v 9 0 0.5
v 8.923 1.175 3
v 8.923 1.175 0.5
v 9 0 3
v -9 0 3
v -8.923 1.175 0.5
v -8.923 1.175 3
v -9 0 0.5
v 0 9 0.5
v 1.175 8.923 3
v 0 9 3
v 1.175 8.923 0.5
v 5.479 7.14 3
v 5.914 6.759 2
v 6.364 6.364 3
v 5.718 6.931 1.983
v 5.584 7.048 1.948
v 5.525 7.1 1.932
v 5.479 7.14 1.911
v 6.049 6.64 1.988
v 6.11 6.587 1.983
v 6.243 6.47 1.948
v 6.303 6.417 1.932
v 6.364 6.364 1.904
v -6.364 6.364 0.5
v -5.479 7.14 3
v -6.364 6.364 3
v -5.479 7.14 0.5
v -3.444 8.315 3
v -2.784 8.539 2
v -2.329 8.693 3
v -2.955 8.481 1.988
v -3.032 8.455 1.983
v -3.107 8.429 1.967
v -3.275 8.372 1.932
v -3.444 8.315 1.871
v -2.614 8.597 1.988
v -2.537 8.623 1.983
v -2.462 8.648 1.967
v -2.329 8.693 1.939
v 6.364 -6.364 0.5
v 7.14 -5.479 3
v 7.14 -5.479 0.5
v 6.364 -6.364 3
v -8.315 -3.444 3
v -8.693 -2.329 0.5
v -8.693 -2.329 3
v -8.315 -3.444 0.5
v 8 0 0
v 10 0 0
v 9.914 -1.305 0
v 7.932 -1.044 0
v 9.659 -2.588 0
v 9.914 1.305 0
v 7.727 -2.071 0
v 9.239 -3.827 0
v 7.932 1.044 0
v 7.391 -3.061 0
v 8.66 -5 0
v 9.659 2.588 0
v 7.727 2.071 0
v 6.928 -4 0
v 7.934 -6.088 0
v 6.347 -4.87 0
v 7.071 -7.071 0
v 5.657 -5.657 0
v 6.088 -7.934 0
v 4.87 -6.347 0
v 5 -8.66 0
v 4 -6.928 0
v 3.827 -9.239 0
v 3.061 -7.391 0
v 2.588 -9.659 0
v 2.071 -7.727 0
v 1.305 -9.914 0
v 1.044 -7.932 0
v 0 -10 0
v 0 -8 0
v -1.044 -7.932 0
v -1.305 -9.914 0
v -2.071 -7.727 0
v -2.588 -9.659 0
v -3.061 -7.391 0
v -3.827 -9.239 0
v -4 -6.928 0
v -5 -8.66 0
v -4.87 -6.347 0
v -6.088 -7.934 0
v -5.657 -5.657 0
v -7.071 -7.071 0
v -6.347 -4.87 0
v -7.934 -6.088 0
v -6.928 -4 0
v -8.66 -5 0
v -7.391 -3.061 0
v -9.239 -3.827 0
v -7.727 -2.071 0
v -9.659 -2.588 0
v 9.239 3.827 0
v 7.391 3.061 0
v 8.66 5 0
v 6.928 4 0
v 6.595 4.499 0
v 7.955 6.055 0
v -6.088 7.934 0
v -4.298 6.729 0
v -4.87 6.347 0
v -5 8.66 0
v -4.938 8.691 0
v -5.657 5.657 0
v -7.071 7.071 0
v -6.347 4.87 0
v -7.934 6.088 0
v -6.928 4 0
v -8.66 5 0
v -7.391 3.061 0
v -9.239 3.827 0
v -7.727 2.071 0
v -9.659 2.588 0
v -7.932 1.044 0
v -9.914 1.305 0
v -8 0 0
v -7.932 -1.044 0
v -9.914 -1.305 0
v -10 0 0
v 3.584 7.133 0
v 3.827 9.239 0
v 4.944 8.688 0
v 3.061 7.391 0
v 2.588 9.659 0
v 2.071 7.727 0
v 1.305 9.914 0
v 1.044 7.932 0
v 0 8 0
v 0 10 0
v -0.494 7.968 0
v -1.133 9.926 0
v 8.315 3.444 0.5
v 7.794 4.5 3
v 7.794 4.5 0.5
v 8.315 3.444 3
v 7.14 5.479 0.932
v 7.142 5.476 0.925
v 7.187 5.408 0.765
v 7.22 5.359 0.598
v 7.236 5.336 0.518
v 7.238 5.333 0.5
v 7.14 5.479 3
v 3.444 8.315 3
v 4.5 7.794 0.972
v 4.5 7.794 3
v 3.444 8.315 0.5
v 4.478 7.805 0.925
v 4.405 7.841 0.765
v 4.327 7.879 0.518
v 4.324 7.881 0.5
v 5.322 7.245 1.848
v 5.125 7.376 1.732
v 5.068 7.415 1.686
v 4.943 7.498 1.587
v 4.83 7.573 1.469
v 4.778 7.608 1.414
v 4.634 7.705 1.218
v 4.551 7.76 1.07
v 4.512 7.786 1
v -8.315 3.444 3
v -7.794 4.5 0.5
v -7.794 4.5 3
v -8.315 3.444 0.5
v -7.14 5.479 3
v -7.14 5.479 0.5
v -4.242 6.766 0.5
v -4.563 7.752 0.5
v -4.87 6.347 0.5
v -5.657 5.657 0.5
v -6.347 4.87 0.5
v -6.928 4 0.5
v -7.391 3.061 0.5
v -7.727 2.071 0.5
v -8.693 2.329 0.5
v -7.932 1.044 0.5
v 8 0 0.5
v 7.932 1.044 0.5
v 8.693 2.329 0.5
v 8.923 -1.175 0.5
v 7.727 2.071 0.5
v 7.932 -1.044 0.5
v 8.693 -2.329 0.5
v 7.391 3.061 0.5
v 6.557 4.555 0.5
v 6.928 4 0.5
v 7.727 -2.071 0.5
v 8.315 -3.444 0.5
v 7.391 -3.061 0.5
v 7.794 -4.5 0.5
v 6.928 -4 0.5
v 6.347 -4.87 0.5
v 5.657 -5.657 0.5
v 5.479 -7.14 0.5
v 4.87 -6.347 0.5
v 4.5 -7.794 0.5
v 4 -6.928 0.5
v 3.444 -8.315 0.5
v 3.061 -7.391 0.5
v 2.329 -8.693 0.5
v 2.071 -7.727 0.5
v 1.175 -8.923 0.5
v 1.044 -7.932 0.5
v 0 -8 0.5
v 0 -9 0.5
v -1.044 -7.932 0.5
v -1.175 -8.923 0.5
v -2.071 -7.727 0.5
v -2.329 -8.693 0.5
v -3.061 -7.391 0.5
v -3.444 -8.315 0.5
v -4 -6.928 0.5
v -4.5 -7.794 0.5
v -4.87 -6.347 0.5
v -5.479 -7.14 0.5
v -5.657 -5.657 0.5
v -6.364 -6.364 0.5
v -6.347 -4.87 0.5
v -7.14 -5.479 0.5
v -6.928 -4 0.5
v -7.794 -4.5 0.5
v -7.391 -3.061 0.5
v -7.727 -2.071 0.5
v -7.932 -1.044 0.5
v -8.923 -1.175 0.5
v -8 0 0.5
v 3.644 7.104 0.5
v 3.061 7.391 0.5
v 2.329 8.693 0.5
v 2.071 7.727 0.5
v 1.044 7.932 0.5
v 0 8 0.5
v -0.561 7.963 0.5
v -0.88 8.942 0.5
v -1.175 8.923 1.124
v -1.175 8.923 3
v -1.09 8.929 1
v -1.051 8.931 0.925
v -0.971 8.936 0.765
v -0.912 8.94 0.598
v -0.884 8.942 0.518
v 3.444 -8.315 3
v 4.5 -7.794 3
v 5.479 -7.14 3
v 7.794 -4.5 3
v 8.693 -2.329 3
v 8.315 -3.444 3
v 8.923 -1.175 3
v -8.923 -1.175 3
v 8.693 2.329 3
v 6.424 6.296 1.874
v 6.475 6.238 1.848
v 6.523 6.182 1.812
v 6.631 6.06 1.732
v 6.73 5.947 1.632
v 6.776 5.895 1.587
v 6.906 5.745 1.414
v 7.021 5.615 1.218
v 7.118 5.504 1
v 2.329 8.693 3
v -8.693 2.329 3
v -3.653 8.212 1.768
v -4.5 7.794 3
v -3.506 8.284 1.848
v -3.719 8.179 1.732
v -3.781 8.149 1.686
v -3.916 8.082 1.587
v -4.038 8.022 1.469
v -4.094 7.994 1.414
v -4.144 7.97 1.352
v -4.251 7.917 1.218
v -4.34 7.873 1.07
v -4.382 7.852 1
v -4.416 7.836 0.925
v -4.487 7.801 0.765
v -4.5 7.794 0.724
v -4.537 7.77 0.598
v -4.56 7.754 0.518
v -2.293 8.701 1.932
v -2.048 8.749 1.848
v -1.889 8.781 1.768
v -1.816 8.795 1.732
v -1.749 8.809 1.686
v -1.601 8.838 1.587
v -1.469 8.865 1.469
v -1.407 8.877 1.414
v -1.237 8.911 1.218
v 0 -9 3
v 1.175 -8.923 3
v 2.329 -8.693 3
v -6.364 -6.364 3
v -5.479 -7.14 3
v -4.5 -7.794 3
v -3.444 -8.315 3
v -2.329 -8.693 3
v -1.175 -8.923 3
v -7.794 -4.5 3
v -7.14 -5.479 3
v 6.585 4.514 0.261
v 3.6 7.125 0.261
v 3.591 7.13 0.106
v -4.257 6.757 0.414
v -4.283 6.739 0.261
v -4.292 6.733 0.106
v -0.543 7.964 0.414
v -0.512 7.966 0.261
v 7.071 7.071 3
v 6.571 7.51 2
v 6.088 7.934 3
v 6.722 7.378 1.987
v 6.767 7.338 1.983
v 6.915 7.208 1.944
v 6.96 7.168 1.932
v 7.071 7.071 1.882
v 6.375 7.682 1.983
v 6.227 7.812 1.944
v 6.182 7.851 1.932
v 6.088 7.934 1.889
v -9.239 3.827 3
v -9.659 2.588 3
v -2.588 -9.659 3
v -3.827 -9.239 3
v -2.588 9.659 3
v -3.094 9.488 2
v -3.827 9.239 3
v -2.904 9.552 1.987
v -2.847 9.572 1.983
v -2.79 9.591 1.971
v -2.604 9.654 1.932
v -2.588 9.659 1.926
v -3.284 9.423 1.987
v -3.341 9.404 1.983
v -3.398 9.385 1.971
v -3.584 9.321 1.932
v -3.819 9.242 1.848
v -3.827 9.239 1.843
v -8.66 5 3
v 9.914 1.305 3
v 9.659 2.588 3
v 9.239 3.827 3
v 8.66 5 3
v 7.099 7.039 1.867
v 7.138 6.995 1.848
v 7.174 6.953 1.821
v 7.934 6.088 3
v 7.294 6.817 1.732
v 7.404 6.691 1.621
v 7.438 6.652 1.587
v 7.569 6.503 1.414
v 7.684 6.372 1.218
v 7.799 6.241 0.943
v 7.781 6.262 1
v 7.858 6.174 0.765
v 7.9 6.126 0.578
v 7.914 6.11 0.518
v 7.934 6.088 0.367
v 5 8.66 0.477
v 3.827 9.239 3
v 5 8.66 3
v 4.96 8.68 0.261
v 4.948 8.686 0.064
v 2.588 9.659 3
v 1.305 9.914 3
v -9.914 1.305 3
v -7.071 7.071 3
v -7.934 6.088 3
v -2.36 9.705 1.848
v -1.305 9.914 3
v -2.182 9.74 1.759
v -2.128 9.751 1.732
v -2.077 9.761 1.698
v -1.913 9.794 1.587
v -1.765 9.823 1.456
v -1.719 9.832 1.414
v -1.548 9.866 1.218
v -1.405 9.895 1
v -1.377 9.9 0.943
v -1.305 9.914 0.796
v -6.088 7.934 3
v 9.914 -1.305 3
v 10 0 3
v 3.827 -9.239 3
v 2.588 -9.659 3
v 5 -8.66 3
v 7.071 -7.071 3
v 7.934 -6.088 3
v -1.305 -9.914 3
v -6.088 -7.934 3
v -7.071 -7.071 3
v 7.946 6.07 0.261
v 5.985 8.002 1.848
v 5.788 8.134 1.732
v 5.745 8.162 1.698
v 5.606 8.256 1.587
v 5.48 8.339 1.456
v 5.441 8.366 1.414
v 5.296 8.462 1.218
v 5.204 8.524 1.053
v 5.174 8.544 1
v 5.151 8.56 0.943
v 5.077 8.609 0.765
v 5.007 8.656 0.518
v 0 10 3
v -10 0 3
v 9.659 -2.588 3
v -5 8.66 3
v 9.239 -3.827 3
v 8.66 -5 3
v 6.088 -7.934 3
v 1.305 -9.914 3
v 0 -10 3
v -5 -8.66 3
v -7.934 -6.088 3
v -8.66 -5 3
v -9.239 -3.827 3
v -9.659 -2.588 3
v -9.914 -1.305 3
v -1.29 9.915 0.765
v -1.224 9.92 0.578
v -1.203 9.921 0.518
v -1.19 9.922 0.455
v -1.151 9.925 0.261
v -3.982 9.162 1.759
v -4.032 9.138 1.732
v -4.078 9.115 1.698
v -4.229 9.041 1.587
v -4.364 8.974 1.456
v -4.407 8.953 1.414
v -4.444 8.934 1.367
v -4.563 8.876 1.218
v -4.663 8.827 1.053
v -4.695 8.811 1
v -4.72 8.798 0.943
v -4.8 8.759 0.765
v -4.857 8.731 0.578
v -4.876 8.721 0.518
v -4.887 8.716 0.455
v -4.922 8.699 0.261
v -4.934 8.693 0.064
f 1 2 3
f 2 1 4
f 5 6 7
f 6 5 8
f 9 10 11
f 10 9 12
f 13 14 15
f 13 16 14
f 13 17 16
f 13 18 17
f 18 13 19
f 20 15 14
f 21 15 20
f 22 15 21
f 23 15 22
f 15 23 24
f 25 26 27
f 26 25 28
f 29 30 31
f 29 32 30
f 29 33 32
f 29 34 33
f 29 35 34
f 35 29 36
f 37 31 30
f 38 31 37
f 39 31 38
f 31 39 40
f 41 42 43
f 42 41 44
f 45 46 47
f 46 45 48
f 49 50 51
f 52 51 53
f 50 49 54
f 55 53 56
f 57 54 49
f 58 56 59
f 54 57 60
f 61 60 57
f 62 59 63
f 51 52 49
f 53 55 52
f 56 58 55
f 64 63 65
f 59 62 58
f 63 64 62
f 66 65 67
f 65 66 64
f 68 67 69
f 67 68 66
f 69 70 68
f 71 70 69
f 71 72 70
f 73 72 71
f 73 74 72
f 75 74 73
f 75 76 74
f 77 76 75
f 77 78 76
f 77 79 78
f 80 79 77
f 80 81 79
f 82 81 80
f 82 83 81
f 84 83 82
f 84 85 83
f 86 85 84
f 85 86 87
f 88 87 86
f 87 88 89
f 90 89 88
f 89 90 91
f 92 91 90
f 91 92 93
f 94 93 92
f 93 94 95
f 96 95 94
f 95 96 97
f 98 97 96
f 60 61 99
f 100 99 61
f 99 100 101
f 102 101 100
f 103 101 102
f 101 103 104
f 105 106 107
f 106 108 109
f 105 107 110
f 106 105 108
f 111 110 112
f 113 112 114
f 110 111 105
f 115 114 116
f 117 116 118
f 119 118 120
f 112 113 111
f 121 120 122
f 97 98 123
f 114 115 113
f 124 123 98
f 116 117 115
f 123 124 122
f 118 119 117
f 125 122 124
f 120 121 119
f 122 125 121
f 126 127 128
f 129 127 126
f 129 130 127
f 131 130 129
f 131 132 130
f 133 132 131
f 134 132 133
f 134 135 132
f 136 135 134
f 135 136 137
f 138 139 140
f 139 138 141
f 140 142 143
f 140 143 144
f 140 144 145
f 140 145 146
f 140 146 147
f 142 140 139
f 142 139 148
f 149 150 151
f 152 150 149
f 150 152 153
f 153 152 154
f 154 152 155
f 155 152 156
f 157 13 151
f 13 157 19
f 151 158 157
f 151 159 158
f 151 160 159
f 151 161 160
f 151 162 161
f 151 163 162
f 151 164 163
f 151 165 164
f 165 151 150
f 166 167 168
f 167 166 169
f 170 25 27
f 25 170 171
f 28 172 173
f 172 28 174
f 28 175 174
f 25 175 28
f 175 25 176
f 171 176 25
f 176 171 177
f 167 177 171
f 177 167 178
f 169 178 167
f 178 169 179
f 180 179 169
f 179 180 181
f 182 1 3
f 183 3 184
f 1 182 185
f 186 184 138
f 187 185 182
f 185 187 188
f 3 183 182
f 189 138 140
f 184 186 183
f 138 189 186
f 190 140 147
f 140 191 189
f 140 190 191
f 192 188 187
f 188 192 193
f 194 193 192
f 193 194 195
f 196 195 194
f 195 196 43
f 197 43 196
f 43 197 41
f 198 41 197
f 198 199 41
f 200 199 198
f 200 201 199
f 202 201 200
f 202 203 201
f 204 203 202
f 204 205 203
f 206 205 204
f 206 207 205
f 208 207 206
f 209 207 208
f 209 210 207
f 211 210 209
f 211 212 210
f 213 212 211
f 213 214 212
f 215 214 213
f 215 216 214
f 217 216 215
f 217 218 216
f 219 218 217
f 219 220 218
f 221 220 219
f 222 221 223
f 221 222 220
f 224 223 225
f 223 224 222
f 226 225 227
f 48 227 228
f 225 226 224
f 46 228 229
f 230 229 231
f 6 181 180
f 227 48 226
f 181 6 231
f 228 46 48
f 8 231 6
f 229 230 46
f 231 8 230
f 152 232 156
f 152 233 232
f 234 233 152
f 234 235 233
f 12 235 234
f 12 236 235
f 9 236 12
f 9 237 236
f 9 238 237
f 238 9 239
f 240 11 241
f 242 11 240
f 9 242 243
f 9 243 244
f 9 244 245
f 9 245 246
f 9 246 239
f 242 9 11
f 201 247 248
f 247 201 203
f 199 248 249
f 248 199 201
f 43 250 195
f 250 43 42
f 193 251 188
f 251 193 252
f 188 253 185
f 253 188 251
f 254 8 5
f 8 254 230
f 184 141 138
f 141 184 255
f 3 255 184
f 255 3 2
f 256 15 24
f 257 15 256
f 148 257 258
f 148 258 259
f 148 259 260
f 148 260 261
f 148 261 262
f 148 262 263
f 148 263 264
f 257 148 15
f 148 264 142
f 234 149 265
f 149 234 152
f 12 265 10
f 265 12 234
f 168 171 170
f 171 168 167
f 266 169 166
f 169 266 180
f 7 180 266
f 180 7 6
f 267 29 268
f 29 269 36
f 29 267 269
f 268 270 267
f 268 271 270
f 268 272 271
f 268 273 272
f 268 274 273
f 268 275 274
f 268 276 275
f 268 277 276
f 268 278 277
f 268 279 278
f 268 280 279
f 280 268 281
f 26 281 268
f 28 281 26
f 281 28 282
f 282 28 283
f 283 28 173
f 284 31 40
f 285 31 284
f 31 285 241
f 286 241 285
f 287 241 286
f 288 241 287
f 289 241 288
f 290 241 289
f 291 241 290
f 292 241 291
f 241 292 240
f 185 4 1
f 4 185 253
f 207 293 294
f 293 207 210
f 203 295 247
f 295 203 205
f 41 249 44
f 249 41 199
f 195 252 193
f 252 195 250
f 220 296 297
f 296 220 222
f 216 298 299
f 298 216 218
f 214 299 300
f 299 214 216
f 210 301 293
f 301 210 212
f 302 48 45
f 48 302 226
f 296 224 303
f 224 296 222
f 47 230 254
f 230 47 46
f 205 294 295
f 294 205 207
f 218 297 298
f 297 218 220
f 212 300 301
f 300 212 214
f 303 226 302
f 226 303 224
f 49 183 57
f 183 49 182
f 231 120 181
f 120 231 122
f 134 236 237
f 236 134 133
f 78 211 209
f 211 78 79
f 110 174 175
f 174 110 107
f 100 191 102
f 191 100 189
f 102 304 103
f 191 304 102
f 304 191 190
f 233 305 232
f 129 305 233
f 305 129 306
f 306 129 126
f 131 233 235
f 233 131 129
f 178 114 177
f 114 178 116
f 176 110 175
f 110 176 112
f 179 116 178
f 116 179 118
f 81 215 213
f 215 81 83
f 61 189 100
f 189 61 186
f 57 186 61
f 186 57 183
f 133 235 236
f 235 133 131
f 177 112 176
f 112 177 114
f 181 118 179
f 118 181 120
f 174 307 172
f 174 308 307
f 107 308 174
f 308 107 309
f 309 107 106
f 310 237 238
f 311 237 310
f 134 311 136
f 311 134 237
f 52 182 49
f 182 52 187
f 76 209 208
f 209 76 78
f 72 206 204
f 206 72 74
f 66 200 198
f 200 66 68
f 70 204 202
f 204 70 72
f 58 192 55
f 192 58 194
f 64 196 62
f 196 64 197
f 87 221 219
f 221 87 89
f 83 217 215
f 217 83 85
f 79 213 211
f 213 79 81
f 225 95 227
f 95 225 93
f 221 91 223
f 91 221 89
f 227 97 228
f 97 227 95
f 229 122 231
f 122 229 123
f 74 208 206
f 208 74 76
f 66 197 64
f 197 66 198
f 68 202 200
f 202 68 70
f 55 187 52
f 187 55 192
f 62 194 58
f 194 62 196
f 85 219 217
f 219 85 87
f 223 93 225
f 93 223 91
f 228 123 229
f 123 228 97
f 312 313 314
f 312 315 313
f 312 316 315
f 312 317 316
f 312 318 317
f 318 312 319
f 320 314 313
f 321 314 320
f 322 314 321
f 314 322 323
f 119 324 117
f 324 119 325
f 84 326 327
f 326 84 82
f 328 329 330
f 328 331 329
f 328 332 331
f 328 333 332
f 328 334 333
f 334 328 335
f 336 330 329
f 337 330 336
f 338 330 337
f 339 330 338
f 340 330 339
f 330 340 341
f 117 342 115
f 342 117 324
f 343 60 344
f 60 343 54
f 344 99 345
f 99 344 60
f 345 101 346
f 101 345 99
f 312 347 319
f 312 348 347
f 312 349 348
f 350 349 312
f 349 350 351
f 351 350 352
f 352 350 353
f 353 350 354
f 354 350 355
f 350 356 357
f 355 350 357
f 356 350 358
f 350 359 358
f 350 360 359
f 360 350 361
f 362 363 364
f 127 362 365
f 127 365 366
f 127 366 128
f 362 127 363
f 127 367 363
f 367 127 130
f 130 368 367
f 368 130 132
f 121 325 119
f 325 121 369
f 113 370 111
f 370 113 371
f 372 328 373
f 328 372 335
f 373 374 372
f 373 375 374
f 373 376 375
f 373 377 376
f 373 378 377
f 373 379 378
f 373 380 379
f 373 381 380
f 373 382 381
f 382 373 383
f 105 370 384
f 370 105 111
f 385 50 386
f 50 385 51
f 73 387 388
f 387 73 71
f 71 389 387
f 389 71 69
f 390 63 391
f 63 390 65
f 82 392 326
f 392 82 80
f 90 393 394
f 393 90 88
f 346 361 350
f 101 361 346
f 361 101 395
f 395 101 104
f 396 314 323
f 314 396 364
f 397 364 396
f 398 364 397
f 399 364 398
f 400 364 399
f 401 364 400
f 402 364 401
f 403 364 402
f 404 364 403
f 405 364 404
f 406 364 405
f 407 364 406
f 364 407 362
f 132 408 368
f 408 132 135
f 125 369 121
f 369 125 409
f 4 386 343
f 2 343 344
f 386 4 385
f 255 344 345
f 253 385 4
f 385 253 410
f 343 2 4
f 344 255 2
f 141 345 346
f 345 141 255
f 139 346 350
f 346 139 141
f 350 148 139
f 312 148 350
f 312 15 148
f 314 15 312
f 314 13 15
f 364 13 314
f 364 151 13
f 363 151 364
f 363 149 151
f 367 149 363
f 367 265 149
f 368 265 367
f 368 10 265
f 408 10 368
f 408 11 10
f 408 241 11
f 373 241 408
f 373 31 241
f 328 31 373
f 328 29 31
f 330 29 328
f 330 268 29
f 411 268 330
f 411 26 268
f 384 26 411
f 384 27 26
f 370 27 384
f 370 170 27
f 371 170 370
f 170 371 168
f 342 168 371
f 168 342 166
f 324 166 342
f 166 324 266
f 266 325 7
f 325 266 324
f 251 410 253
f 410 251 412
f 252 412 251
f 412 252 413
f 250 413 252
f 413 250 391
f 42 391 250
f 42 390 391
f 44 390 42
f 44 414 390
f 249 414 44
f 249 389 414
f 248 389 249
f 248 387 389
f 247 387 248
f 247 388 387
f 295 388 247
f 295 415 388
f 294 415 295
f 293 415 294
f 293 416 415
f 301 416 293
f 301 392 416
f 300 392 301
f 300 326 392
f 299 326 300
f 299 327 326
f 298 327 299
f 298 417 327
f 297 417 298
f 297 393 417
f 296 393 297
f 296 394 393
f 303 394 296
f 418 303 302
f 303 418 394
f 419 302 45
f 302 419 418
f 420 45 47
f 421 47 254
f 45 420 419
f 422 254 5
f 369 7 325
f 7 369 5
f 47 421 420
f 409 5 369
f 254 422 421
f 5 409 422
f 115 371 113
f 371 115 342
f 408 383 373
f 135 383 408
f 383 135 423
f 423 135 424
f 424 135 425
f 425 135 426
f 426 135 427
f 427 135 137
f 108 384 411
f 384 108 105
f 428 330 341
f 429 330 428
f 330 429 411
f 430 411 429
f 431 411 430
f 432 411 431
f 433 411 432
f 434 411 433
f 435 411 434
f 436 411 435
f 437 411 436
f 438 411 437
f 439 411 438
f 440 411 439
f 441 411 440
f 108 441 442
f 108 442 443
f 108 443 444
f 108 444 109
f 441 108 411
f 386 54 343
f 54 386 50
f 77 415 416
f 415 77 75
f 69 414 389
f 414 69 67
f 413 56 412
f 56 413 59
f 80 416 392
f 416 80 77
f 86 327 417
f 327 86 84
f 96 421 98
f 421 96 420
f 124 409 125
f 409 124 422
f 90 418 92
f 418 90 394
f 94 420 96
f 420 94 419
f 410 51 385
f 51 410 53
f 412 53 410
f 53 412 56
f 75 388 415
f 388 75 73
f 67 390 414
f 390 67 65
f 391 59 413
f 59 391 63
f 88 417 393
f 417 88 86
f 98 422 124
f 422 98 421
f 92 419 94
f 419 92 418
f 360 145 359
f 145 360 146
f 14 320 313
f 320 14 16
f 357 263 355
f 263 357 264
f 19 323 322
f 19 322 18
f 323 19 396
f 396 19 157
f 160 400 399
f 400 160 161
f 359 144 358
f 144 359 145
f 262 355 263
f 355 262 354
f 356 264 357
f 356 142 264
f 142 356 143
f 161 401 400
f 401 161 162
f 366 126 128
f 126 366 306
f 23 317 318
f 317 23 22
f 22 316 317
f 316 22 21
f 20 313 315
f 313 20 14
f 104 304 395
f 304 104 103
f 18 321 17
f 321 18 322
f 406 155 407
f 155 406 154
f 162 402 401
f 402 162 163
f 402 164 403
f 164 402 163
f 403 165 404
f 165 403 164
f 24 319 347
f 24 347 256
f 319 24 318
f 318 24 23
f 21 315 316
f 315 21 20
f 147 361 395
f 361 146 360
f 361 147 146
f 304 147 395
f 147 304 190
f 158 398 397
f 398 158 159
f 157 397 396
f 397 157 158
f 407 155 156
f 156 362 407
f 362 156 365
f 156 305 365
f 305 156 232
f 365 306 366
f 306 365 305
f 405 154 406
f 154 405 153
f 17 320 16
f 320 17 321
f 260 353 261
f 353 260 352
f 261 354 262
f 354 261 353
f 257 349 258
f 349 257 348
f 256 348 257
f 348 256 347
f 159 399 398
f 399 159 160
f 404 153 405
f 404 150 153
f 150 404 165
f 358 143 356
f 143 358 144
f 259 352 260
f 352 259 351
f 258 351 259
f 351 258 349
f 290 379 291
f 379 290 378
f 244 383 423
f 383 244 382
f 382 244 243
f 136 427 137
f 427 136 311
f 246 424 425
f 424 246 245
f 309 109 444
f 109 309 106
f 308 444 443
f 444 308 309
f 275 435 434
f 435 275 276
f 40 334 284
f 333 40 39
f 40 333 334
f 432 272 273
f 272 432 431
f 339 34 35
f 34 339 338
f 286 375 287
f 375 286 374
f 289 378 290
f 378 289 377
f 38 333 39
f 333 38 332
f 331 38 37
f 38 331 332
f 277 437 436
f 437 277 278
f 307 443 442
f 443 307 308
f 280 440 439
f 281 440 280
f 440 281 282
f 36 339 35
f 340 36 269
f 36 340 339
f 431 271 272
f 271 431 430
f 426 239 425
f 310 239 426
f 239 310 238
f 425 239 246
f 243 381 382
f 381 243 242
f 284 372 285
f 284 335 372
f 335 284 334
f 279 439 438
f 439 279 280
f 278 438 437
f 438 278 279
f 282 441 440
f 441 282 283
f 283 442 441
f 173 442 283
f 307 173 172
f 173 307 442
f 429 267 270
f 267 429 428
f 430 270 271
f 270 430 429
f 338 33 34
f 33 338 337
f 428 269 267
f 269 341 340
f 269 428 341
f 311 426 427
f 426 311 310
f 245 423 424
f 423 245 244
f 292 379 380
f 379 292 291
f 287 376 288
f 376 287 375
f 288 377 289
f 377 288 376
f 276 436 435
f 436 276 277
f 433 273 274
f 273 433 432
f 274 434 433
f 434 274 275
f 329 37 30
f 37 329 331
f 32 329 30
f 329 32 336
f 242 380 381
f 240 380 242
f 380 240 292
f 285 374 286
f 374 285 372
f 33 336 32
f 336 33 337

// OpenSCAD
// file: ../build_environments.scad
// build_environments.scad: modules to build level sections
//

module pool(diameter=10.0, wall_height=2.0, step_width=3.0, connections=[])
{
    difference() {
        union() {
        difference() {
            cylinder(h=0.5,r1=diameter+step_width,r2=diameter+step_width,$fn=48);
            translate([0,0,-0.1])
                cylinder(h=0.7,r1=diameter,r2=diameter,$fn=48);
        }
        difference() {
            cylinder(h=wall_height,r1=diameter+step_width+1.0,r2=diameter+step_width+1.0,$fn=48);
            translate([0,0,-0.1])
                cylinder(h=wall_height+0.2,r1=diameter+step_width,r2=diameter+step_width,$fn=48);
        }
        }
    
        for (c = connections)
        {
            rotate([0,90,0]) {
                angle = atan2(c[1],c[0]);
                rotate([-angle,0,0]) {
                    cylinder(h=diameter+5.0,r1=c[2],r2=c[2],$fn=48);
                }
            }
        }
    }
}

module straight(length=10.0, width=2.0, dy1=0.0, dy2=0.0, dz=0.0)
{
    dims = [0, 0, 0, 0, 0, (dz/length)];
    matrix = [
        [ 1, dims[0], dims[1], 0 ],
        [ dims[2], 1, dims[4], 0 ],
        [ dims[5], dims[3], 1, 0 ],
        [ 0, 0, 0, 1 ]
    ];
    multmatrix(matrix)
    difference() {
        translate([dy1,0,0])
        union() {
            rotate([0,90,0]) {
                difference() {
                    cylinder(h=(length-dy1-dy2),r1=width+1.0,r2=width+1.0,$fn=24);
                    translate([0,0,-0.1])
                        cylinder(h=(length-dy1-dy2+0.2),r1=width,r2=width,$fn=24);
                }
                difference() {
                    cylinder(h=1.0,r1=width+2.0,r2=width+2.0,$fn=24);
                    translate([0,0,-0.1])
                        cylinder(h=1.2,r1=width,r2=width,$fn=24);
                }
                translate([0,0,(length-dy1-dy2)-1.0]) {
                    difference() {
                        cylinder(h=1.0,r1=width+2.0,r2=width+2.0,$fn=24);
                        translate([0,0,-0.1])
                            cylinder(h=1.2,r1=width,r2=width,$fn=24);
                    }
                }
            }
        }
        translate([0,0,-(2*width+4.0)/2])
            cube([3*length,3*length,2*width+4.0],center=true);
    }
}

module curve(p0=[0,0], center=[0,0], dir=1, angle=0.0, width=2.0)
{
    radius = sqrt((p0[0]-center[0])*(p0[0]-center[0]) + (p0[1]-center[1])*(p0[1]-center[1]));
    if (dir == 0) {
        difference() {
            rotate([0,0,-90])
            difference() {
                rotate_extrude(angle = angle, convexity = 10, $fn=32)
                    translate([radius, 0, 0])
                        circle(r = width+1.0,$fn=24);
                rotate([0,0,-1.0])
                    rotate_extrude(angle = angle+2.0, convexity = 10, $fn=32)
                        translate([radius, 0, 0])
                            circle(r = width,$fn=24);
            }
            translate([0,0,-(2*width+4.0)/2])
                cube([5*radius,5*radius,2*width+4.0],center=true);
        }
    }
    else {
        difference() {
            rotate([0,0,90])
            difference() {
                rotate_extrude(angle = -angle, convexity = 10, $fn=32)
                    translate([radius, 0, 0])
                        circle(r = width+1.0,$fn=24);
                rotate([0,0,1.0])
                    rotate_extrude(angle = -angle-2.0, convexity = 10, $fn=32)
                        translate([radius, 0, 0])
                            circle(r = width,$fn=24);
            }
            translate([0,0,-(2*width+4.0)/2])
                cube([5*radius,5*radius,2*width+4.0],center=true);
        }
    }

}

// test pool
//pool(diameter=12.0000, wall_height=3.0000, step_width=3.0000, connections=[[0.0000,-26.0000,2.0000], [23.6074,0.0000,2.0000]]);

// test straight, slope
//straight(length=26.0000, width=2.0000, dy1=11.8322, dy2=6.7082, dz=0.0000);
//straight(length=29.1549, width=12.0000, dy1=0.0000, dy2=0.0000, dz=-15.0000);

// test curve
//curve(p0=[23.6074, 0.0000], center=[23.6074, 5.0000], dir=0, angle=60.1011, width=2.0000);
//curve(p0=[33.6426, 12.4219], center=[37.9771, 9.9295], dir=1, angle=120.4627, width=2.0000);
// main file
use <../build_environments.scad>;
pool(diameter=8.0000, wall_height=3.0000, step_width=1.0000, connections=[[28.0000,32.0000,2.0000], [-3.5557,10.9042,2.0000]]);
